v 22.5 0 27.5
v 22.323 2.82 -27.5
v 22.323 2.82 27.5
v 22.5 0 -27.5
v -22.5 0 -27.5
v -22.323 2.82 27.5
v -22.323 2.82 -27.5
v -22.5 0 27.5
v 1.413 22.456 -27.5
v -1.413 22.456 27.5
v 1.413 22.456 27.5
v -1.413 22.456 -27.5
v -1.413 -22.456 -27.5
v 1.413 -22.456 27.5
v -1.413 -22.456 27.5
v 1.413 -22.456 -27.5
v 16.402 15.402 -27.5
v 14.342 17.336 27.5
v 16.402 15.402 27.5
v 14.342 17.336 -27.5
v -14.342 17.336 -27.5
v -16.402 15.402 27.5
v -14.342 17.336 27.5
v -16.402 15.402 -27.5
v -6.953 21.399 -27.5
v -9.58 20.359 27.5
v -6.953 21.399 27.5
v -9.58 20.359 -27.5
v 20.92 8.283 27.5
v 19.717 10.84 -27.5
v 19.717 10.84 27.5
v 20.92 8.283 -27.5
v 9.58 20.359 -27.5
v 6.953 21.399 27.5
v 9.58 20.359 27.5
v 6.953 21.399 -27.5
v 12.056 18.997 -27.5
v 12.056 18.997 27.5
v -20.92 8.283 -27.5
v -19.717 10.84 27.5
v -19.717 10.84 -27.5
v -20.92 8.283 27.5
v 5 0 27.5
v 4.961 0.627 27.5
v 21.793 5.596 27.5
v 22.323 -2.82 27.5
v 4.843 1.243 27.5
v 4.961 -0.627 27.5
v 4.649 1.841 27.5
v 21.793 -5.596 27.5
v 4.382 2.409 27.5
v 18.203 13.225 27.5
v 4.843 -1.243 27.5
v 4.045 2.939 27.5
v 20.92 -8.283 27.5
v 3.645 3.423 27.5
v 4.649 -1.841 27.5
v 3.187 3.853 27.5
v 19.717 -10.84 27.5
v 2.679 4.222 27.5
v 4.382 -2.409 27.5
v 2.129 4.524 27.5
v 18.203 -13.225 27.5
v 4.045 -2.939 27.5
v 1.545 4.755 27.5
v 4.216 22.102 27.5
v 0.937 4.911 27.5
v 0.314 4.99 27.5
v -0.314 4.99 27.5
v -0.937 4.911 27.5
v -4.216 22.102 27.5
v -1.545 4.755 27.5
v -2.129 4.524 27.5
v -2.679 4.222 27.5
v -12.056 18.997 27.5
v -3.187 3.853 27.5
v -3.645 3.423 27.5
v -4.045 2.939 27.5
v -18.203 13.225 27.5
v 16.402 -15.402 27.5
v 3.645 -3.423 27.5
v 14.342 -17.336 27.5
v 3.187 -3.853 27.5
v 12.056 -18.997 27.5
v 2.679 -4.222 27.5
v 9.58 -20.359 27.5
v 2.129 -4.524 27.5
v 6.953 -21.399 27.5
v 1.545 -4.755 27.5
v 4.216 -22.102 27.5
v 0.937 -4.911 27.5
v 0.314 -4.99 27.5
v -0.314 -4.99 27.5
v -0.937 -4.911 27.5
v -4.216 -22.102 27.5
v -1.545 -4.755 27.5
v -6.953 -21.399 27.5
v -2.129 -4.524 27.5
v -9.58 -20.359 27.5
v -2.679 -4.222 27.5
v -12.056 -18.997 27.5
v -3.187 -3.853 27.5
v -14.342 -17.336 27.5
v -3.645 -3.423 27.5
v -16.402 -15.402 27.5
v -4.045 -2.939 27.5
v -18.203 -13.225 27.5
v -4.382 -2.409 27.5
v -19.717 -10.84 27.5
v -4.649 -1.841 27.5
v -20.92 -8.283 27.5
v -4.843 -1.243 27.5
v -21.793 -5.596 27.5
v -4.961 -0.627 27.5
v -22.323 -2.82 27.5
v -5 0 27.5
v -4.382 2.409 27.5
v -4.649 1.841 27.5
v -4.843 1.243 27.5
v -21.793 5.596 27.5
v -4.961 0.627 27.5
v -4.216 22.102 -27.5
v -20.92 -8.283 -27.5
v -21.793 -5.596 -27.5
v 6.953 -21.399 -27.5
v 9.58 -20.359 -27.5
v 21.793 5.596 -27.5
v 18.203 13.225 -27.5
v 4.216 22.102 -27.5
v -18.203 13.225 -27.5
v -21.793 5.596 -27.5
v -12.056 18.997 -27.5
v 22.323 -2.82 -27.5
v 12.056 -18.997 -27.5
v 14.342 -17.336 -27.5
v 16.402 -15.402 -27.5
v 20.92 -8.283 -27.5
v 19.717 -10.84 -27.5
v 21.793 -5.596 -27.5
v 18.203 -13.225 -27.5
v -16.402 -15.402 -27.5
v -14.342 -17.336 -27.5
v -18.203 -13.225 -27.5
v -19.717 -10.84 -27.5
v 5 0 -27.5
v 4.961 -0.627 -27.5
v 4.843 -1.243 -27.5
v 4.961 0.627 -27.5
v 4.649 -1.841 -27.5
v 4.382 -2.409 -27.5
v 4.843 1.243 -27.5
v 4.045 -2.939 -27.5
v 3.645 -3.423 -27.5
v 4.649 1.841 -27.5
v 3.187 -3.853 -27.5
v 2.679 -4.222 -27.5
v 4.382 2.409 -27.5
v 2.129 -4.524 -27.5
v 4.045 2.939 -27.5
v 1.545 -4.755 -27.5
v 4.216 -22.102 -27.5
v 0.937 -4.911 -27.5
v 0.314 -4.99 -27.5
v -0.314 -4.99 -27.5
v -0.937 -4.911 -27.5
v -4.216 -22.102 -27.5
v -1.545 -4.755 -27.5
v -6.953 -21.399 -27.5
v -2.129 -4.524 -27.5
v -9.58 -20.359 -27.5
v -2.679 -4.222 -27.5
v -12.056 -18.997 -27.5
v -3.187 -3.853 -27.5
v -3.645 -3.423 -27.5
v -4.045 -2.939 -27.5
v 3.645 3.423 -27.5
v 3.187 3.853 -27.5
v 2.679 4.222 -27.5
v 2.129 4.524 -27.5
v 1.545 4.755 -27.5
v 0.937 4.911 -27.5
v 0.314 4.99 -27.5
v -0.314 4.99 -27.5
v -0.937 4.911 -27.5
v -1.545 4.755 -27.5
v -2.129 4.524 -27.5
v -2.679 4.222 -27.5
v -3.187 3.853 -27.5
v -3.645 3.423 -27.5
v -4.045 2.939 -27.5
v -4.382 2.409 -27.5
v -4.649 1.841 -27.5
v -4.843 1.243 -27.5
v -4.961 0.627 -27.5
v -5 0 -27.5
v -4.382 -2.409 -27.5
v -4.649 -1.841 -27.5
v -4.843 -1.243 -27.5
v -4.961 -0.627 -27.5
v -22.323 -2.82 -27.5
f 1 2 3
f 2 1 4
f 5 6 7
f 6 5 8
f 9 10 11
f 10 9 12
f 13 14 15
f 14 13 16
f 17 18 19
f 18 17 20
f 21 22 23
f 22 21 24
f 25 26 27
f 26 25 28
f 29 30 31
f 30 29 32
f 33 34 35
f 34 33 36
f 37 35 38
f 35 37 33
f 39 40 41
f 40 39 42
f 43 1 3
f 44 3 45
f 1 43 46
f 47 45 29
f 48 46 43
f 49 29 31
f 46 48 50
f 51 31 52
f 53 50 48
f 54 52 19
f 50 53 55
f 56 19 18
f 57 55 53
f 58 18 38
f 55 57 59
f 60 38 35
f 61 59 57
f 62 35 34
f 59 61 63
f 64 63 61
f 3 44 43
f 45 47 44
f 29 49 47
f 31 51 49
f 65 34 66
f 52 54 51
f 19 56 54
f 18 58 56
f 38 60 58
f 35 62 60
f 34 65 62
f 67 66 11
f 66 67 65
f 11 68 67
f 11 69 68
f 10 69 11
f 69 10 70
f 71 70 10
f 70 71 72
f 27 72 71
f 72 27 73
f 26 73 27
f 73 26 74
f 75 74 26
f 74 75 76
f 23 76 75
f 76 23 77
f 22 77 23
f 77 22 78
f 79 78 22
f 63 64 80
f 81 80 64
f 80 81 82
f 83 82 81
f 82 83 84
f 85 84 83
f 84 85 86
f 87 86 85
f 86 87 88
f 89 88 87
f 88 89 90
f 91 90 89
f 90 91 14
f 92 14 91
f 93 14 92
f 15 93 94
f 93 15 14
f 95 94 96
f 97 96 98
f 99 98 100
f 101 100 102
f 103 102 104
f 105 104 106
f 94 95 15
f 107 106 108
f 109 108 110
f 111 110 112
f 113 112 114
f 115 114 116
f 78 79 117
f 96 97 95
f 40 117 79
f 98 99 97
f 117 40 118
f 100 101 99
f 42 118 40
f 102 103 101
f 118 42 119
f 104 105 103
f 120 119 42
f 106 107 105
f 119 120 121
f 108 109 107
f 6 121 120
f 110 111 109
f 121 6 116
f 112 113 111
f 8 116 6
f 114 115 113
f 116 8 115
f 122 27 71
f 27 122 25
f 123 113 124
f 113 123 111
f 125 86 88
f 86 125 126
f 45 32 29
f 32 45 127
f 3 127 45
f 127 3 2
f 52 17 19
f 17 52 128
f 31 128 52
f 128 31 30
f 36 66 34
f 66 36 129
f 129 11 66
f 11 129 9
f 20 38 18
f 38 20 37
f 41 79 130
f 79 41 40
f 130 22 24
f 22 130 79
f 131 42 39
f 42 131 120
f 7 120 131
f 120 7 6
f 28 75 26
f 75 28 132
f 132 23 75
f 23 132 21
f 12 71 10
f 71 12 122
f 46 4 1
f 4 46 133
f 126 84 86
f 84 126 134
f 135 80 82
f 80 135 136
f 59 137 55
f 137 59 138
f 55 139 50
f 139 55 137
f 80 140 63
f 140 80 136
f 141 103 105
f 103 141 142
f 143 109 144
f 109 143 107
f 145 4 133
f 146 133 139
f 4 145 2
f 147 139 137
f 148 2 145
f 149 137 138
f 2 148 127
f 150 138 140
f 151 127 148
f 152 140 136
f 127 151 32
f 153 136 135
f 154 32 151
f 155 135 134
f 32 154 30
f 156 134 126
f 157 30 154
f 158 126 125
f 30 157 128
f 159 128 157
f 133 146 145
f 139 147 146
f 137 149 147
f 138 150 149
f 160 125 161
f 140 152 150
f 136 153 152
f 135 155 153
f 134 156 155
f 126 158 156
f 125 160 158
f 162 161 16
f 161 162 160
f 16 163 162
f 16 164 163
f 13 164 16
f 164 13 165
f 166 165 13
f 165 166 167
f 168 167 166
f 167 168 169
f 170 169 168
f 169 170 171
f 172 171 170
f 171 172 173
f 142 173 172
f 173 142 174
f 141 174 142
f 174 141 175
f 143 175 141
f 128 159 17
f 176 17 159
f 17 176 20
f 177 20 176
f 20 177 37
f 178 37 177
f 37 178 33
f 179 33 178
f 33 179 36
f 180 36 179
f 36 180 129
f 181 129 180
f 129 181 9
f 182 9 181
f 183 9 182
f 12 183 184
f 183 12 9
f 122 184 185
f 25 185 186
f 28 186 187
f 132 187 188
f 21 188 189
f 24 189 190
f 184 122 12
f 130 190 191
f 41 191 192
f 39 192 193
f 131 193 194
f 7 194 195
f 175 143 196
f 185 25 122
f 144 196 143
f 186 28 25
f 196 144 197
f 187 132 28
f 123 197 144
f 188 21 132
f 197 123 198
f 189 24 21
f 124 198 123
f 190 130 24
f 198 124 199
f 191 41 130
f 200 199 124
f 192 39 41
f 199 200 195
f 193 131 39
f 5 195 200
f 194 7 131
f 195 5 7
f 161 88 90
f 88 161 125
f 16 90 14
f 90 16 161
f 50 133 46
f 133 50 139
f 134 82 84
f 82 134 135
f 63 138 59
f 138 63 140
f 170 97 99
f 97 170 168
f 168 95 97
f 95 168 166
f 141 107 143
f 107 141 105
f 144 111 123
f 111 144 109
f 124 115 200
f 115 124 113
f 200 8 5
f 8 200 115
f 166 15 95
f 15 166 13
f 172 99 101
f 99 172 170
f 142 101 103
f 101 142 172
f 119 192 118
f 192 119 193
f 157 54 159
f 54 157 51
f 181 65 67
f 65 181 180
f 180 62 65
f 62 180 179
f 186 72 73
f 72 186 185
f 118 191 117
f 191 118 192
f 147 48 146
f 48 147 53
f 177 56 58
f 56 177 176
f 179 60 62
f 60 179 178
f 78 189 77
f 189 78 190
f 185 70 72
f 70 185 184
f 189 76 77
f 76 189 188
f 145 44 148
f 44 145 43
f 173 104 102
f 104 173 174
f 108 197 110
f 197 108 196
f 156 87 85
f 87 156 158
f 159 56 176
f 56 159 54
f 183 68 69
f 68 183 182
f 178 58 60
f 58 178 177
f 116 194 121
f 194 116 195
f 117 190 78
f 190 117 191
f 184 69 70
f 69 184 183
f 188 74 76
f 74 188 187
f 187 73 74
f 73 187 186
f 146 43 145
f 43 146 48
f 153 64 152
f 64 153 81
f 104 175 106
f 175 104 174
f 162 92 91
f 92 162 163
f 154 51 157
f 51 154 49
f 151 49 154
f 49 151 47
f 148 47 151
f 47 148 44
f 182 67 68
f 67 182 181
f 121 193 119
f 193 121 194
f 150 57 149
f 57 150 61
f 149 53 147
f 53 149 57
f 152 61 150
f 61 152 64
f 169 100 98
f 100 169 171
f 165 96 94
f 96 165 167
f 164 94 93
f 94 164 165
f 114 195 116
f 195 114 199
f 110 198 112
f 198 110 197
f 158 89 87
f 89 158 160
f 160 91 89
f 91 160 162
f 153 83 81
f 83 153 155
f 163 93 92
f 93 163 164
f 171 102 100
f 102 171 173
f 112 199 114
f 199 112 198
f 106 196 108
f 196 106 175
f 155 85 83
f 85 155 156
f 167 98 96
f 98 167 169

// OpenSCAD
$fn = 50;


difference() {
	union() {
		translate(v = [0, 0, -27.5000000000]) {
			cylinder(h = 55, r = 22.5000000000);
		}
	}
	union() {
		translate(v = [0, 0, -100.0000000000]) {
			cylinder(h = 200, r = 5);
		}
	}
}
